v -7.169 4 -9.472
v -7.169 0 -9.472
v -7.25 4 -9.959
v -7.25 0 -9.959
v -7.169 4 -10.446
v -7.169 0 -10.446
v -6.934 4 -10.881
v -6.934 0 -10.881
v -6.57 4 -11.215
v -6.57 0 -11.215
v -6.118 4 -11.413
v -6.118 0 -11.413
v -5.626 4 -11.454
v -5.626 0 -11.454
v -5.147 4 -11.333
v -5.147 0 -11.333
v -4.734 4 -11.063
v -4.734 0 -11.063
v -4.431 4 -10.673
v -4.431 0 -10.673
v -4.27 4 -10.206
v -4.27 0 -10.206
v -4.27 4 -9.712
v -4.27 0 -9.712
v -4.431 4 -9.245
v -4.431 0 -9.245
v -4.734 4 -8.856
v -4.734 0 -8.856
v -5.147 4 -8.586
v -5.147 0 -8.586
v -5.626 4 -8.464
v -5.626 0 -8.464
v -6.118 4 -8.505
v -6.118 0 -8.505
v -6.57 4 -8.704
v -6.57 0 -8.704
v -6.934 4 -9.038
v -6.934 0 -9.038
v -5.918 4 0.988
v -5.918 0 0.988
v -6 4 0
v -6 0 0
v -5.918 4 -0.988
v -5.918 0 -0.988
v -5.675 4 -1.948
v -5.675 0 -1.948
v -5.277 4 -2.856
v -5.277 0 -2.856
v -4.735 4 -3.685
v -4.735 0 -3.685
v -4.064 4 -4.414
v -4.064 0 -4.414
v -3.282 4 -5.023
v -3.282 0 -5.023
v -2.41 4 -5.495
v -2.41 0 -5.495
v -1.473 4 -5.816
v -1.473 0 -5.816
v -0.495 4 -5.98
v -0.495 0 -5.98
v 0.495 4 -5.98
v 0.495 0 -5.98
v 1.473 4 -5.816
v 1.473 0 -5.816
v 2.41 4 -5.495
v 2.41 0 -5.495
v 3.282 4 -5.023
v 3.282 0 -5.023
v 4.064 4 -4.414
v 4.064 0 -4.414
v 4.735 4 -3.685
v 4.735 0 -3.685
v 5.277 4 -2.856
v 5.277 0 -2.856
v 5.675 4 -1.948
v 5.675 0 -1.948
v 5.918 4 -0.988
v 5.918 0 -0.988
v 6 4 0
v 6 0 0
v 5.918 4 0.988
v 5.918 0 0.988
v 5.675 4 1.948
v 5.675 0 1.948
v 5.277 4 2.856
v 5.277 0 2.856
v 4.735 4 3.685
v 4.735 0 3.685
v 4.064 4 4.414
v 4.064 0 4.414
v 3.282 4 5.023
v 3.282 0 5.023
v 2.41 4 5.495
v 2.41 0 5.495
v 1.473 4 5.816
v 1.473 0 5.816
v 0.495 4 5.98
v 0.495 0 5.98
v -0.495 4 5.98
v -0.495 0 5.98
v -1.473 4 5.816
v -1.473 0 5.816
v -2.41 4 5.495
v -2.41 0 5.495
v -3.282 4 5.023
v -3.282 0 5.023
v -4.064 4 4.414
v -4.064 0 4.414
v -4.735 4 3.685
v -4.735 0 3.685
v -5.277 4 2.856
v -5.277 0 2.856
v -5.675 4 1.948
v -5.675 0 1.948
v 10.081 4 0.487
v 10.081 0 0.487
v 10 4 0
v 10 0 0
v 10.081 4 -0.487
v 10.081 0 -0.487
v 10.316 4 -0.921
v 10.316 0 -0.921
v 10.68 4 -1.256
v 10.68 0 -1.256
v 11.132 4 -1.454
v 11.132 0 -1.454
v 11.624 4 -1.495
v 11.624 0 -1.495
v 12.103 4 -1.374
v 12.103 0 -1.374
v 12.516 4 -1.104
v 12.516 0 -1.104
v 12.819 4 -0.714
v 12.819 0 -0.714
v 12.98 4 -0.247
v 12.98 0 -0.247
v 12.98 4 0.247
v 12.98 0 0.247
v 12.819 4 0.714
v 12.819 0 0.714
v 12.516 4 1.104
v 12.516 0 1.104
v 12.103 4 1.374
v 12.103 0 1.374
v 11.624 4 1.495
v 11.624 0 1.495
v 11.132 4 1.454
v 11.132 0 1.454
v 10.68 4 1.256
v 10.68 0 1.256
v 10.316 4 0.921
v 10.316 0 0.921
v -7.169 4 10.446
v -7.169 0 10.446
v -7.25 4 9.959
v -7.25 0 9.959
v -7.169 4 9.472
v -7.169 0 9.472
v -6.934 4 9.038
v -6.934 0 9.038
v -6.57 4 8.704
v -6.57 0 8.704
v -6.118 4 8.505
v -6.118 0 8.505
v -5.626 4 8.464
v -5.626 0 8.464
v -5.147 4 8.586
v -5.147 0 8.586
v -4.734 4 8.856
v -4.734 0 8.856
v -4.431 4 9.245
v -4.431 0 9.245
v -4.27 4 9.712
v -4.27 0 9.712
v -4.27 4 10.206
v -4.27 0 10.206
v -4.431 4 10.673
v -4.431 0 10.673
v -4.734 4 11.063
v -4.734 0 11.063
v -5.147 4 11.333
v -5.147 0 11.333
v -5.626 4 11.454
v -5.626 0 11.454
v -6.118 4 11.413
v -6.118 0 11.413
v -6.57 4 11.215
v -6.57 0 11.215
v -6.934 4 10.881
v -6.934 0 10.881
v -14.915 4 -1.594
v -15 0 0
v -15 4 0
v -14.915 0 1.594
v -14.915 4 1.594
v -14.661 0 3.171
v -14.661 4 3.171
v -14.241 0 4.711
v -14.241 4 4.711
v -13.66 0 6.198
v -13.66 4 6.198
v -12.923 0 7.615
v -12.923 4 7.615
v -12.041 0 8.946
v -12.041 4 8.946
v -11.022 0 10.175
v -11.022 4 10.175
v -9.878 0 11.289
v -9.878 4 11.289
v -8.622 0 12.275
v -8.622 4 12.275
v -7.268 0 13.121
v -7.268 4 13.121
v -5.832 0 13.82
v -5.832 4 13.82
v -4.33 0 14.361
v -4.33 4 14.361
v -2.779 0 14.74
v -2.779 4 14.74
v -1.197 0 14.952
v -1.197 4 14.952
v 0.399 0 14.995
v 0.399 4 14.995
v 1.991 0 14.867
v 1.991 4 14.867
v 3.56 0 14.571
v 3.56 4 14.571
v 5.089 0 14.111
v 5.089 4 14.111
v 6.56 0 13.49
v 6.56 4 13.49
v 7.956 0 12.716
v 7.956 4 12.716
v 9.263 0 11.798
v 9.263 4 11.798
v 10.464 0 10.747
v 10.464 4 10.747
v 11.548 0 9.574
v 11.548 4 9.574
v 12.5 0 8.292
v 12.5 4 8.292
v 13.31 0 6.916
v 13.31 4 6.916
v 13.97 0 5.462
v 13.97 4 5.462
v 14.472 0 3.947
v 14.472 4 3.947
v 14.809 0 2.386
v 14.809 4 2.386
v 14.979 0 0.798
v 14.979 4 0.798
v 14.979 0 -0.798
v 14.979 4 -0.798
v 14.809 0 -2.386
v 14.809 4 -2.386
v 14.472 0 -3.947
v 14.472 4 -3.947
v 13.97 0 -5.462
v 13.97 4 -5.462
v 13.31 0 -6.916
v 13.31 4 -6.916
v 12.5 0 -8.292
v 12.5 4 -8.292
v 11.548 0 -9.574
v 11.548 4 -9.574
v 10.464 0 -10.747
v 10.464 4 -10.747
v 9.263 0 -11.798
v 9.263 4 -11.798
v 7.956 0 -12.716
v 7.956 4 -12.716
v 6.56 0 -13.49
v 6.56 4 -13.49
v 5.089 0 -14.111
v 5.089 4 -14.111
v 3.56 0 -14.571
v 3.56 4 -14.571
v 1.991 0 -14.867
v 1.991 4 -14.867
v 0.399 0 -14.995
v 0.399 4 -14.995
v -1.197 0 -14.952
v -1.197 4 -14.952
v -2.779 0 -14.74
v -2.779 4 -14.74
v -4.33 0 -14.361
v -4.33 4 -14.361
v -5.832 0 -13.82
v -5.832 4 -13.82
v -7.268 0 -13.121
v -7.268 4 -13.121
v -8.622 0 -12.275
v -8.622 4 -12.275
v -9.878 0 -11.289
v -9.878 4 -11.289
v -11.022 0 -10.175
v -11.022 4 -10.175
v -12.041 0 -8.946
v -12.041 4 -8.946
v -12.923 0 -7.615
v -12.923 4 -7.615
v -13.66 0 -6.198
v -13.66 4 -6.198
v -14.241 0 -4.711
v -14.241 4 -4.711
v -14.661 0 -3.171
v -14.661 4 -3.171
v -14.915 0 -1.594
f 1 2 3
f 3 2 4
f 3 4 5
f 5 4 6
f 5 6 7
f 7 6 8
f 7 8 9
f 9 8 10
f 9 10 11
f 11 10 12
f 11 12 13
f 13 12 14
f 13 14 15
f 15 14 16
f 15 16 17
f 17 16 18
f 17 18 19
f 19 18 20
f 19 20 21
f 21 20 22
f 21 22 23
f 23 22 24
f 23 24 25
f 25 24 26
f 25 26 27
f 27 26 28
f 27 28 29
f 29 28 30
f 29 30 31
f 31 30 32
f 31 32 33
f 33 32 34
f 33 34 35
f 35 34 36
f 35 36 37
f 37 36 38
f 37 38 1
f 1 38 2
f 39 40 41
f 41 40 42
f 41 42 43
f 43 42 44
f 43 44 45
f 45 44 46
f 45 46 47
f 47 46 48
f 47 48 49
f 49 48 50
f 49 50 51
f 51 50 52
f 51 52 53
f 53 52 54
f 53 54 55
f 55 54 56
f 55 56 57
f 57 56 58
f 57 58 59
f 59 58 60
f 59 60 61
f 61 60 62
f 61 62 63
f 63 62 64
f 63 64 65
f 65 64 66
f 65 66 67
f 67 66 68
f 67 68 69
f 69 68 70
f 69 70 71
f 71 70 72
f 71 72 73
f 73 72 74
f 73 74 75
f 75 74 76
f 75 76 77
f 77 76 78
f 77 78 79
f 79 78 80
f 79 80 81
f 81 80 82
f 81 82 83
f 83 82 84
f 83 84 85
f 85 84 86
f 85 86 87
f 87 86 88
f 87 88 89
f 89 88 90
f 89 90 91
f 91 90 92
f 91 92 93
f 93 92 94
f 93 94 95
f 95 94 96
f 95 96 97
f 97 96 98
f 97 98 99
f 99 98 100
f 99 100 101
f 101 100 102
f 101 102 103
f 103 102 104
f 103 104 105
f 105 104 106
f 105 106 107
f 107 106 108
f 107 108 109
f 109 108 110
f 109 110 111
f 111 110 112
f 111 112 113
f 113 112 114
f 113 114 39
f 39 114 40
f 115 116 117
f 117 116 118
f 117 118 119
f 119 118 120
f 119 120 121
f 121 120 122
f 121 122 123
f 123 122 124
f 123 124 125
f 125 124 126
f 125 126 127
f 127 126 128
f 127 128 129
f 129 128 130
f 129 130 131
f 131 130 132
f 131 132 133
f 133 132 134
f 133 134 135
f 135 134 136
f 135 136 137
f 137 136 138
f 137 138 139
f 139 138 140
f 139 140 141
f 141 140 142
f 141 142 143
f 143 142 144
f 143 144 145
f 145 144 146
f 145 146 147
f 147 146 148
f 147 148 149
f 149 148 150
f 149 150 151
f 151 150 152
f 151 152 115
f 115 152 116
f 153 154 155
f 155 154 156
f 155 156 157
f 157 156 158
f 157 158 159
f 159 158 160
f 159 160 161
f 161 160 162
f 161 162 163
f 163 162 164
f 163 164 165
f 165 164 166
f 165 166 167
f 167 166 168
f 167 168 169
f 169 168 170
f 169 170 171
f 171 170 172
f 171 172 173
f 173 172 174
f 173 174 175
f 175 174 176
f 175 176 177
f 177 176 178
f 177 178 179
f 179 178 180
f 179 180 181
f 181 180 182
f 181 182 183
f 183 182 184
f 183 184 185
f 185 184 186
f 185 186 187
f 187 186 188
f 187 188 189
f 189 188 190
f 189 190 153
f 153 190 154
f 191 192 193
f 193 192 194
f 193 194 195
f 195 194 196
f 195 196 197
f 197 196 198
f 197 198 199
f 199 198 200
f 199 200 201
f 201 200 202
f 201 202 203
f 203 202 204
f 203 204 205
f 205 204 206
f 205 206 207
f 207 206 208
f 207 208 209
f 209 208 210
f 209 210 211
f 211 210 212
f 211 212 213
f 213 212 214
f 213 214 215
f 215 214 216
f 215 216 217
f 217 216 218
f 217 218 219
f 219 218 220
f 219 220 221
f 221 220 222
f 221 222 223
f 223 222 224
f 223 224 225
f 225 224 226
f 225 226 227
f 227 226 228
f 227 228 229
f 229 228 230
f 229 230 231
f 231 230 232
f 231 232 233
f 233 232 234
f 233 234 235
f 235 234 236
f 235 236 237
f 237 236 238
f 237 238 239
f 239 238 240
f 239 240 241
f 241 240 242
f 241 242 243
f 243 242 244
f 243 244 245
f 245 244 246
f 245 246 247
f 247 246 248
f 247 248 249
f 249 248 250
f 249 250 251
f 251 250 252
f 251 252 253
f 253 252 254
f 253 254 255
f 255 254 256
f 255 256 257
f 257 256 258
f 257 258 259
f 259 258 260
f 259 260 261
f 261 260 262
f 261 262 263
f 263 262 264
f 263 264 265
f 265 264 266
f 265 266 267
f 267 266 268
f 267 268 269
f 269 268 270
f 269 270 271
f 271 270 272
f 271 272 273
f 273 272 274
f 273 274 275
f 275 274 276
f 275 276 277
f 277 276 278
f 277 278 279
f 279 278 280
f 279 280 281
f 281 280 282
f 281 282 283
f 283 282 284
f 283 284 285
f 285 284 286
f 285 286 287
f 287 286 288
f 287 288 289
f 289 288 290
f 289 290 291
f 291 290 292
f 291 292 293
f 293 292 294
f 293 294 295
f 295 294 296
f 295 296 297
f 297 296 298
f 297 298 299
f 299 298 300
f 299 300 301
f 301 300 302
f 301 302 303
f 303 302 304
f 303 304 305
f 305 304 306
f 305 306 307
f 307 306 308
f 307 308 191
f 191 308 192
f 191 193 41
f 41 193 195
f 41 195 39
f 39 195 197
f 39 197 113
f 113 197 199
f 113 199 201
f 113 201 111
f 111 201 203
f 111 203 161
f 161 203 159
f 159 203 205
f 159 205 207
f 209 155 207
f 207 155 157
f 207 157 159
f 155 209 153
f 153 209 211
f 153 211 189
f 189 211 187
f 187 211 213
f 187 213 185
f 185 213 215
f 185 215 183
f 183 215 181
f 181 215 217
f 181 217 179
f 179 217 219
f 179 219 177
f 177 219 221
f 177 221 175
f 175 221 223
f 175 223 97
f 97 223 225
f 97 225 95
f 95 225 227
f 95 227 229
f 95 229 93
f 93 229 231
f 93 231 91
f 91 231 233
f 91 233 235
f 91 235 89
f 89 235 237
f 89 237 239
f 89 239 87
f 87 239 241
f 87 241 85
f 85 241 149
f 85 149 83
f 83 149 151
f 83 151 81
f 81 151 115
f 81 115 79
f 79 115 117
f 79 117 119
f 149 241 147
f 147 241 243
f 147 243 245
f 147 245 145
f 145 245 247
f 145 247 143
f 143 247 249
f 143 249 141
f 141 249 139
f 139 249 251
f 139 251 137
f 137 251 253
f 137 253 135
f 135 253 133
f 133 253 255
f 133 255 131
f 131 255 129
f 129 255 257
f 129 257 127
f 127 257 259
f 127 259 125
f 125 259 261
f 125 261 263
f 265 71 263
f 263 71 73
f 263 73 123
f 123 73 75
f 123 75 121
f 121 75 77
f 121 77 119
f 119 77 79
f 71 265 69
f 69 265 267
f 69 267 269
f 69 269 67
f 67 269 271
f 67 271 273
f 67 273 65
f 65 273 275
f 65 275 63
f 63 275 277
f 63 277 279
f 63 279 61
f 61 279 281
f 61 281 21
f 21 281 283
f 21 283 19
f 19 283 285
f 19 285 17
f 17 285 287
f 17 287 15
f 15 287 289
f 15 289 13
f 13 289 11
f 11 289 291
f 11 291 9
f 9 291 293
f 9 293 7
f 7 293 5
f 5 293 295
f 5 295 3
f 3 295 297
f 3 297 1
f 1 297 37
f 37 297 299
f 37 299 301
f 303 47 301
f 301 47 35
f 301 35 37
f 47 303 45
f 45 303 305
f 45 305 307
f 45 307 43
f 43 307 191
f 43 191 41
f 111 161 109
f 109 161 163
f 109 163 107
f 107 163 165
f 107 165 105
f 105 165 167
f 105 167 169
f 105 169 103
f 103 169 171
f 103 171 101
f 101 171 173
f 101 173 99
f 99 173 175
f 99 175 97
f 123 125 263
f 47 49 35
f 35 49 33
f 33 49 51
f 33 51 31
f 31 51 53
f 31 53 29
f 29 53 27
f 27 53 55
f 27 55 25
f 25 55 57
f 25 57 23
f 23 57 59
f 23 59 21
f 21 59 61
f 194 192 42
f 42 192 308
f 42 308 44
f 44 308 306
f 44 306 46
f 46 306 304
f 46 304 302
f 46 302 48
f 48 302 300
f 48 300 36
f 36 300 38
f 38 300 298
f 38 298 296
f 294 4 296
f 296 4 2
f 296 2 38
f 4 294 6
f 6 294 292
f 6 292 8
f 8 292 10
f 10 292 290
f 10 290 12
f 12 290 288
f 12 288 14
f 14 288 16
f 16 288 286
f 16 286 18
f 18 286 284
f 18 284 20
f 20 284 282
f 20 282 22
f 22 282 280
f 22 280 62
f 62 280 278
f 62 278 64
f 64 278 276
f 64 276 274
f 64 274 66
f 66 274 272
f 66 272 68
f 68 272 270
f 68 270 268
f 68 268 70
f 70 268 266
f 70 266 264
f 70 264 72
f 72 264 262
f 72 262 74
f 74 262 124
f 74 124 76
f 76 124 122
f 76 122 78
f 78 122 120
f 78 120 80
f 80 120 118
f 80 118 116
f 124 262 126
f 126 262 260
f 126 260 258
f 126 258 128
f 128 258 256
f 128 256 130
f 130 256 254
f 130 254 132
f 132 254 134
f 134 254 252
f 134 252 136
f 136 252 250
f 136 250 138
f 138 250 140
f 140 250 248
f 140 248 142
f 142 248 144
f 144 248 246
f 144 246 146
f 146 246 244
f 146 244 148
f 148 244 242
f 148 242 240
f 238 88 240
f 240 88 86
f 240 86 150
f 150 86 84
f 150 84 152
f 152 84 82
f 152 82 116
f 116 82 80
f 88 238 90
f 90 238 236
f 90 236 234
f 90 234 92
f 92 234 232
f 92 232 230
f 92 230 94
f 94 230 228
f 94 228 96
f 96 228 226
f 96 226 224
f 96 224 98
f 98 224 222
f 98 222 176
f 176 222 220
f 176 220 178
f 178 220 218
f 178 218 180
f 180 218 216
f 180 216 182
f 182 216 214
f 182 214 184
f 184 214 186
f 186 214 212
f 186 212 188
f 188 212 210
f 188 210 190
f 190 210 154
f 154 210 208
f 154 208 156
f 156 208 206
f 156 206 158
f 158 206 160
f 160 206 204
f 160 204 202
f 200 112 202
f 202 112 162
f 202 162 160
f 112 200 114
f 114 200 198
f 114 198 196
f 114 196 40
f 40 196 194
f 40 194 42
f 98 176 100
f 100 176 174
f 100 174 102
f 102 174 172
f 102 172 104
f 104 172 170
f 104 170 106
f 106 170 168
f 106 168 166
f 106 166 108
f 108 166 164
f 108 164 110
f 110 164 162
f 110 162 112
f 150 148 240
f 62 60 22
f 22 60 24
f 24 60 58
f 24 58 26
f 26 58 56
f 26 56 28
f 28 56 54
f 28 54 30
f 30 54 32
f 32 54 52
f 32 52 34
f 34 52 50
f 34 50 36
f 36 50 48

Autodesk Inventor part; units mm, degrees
ref_plane "YZ Plane" through (0, 0, 0) normal (1, 0, 0) x (0, 1, 0)
ref_plane "XZ Plane" through (0, 0, 0) normal (0, 1, 0) x (-1, 0, 0)
ref_plane "XY Plane" through (0, 0, 0) normal (0, 0, 1) x (1, 0, 0)
sketch "Skizze1" plane through (0, 0, 0) normal (0, 1, 0) x (-1, 0, 0)
  circle A0 centre (0, 0) radius 15
  circle A1 centre (0, 0) radius 6
  circle A2 centre (0, 0) radius 11.5
  line L0 (0, 0) -> (-26.7883, 0)
  line L1 (0, 0) -> (13.3942, -23.1994)
  line L2 (0, 0) -> (13.3942, 23.1994)
  circle A3 centre (5.75, -9.9593) radius 1.5
  circle A4 centre (5.75, 9.9593) radius 1.5
  circle A5 centre (-11.5, 0) radius 1.5
  dimension "d0" = 30
  dimension "d1" = 12
  dimension "d3" = 23
  dimension "d6" = 360
  dimension "d8" = 3
  dimension "d9" = 3
  dimension "d10" = 3
extrude "Extrusion1" add sketch "Skizze1" along normal blind 4 contours A0 L1 A3 A2 A4 L2 | L2 A4 A2 A5 L0 A0 | A0 L0 A5 A2 A3 L1 | A4 L2 A1 L0 A5 A2 | A2 A5 L0 A1 L1 A3 | A2 A3 L1 A1 L2 A4
properties part number "01-03-01-02 Zeichnung Zange links oben"
